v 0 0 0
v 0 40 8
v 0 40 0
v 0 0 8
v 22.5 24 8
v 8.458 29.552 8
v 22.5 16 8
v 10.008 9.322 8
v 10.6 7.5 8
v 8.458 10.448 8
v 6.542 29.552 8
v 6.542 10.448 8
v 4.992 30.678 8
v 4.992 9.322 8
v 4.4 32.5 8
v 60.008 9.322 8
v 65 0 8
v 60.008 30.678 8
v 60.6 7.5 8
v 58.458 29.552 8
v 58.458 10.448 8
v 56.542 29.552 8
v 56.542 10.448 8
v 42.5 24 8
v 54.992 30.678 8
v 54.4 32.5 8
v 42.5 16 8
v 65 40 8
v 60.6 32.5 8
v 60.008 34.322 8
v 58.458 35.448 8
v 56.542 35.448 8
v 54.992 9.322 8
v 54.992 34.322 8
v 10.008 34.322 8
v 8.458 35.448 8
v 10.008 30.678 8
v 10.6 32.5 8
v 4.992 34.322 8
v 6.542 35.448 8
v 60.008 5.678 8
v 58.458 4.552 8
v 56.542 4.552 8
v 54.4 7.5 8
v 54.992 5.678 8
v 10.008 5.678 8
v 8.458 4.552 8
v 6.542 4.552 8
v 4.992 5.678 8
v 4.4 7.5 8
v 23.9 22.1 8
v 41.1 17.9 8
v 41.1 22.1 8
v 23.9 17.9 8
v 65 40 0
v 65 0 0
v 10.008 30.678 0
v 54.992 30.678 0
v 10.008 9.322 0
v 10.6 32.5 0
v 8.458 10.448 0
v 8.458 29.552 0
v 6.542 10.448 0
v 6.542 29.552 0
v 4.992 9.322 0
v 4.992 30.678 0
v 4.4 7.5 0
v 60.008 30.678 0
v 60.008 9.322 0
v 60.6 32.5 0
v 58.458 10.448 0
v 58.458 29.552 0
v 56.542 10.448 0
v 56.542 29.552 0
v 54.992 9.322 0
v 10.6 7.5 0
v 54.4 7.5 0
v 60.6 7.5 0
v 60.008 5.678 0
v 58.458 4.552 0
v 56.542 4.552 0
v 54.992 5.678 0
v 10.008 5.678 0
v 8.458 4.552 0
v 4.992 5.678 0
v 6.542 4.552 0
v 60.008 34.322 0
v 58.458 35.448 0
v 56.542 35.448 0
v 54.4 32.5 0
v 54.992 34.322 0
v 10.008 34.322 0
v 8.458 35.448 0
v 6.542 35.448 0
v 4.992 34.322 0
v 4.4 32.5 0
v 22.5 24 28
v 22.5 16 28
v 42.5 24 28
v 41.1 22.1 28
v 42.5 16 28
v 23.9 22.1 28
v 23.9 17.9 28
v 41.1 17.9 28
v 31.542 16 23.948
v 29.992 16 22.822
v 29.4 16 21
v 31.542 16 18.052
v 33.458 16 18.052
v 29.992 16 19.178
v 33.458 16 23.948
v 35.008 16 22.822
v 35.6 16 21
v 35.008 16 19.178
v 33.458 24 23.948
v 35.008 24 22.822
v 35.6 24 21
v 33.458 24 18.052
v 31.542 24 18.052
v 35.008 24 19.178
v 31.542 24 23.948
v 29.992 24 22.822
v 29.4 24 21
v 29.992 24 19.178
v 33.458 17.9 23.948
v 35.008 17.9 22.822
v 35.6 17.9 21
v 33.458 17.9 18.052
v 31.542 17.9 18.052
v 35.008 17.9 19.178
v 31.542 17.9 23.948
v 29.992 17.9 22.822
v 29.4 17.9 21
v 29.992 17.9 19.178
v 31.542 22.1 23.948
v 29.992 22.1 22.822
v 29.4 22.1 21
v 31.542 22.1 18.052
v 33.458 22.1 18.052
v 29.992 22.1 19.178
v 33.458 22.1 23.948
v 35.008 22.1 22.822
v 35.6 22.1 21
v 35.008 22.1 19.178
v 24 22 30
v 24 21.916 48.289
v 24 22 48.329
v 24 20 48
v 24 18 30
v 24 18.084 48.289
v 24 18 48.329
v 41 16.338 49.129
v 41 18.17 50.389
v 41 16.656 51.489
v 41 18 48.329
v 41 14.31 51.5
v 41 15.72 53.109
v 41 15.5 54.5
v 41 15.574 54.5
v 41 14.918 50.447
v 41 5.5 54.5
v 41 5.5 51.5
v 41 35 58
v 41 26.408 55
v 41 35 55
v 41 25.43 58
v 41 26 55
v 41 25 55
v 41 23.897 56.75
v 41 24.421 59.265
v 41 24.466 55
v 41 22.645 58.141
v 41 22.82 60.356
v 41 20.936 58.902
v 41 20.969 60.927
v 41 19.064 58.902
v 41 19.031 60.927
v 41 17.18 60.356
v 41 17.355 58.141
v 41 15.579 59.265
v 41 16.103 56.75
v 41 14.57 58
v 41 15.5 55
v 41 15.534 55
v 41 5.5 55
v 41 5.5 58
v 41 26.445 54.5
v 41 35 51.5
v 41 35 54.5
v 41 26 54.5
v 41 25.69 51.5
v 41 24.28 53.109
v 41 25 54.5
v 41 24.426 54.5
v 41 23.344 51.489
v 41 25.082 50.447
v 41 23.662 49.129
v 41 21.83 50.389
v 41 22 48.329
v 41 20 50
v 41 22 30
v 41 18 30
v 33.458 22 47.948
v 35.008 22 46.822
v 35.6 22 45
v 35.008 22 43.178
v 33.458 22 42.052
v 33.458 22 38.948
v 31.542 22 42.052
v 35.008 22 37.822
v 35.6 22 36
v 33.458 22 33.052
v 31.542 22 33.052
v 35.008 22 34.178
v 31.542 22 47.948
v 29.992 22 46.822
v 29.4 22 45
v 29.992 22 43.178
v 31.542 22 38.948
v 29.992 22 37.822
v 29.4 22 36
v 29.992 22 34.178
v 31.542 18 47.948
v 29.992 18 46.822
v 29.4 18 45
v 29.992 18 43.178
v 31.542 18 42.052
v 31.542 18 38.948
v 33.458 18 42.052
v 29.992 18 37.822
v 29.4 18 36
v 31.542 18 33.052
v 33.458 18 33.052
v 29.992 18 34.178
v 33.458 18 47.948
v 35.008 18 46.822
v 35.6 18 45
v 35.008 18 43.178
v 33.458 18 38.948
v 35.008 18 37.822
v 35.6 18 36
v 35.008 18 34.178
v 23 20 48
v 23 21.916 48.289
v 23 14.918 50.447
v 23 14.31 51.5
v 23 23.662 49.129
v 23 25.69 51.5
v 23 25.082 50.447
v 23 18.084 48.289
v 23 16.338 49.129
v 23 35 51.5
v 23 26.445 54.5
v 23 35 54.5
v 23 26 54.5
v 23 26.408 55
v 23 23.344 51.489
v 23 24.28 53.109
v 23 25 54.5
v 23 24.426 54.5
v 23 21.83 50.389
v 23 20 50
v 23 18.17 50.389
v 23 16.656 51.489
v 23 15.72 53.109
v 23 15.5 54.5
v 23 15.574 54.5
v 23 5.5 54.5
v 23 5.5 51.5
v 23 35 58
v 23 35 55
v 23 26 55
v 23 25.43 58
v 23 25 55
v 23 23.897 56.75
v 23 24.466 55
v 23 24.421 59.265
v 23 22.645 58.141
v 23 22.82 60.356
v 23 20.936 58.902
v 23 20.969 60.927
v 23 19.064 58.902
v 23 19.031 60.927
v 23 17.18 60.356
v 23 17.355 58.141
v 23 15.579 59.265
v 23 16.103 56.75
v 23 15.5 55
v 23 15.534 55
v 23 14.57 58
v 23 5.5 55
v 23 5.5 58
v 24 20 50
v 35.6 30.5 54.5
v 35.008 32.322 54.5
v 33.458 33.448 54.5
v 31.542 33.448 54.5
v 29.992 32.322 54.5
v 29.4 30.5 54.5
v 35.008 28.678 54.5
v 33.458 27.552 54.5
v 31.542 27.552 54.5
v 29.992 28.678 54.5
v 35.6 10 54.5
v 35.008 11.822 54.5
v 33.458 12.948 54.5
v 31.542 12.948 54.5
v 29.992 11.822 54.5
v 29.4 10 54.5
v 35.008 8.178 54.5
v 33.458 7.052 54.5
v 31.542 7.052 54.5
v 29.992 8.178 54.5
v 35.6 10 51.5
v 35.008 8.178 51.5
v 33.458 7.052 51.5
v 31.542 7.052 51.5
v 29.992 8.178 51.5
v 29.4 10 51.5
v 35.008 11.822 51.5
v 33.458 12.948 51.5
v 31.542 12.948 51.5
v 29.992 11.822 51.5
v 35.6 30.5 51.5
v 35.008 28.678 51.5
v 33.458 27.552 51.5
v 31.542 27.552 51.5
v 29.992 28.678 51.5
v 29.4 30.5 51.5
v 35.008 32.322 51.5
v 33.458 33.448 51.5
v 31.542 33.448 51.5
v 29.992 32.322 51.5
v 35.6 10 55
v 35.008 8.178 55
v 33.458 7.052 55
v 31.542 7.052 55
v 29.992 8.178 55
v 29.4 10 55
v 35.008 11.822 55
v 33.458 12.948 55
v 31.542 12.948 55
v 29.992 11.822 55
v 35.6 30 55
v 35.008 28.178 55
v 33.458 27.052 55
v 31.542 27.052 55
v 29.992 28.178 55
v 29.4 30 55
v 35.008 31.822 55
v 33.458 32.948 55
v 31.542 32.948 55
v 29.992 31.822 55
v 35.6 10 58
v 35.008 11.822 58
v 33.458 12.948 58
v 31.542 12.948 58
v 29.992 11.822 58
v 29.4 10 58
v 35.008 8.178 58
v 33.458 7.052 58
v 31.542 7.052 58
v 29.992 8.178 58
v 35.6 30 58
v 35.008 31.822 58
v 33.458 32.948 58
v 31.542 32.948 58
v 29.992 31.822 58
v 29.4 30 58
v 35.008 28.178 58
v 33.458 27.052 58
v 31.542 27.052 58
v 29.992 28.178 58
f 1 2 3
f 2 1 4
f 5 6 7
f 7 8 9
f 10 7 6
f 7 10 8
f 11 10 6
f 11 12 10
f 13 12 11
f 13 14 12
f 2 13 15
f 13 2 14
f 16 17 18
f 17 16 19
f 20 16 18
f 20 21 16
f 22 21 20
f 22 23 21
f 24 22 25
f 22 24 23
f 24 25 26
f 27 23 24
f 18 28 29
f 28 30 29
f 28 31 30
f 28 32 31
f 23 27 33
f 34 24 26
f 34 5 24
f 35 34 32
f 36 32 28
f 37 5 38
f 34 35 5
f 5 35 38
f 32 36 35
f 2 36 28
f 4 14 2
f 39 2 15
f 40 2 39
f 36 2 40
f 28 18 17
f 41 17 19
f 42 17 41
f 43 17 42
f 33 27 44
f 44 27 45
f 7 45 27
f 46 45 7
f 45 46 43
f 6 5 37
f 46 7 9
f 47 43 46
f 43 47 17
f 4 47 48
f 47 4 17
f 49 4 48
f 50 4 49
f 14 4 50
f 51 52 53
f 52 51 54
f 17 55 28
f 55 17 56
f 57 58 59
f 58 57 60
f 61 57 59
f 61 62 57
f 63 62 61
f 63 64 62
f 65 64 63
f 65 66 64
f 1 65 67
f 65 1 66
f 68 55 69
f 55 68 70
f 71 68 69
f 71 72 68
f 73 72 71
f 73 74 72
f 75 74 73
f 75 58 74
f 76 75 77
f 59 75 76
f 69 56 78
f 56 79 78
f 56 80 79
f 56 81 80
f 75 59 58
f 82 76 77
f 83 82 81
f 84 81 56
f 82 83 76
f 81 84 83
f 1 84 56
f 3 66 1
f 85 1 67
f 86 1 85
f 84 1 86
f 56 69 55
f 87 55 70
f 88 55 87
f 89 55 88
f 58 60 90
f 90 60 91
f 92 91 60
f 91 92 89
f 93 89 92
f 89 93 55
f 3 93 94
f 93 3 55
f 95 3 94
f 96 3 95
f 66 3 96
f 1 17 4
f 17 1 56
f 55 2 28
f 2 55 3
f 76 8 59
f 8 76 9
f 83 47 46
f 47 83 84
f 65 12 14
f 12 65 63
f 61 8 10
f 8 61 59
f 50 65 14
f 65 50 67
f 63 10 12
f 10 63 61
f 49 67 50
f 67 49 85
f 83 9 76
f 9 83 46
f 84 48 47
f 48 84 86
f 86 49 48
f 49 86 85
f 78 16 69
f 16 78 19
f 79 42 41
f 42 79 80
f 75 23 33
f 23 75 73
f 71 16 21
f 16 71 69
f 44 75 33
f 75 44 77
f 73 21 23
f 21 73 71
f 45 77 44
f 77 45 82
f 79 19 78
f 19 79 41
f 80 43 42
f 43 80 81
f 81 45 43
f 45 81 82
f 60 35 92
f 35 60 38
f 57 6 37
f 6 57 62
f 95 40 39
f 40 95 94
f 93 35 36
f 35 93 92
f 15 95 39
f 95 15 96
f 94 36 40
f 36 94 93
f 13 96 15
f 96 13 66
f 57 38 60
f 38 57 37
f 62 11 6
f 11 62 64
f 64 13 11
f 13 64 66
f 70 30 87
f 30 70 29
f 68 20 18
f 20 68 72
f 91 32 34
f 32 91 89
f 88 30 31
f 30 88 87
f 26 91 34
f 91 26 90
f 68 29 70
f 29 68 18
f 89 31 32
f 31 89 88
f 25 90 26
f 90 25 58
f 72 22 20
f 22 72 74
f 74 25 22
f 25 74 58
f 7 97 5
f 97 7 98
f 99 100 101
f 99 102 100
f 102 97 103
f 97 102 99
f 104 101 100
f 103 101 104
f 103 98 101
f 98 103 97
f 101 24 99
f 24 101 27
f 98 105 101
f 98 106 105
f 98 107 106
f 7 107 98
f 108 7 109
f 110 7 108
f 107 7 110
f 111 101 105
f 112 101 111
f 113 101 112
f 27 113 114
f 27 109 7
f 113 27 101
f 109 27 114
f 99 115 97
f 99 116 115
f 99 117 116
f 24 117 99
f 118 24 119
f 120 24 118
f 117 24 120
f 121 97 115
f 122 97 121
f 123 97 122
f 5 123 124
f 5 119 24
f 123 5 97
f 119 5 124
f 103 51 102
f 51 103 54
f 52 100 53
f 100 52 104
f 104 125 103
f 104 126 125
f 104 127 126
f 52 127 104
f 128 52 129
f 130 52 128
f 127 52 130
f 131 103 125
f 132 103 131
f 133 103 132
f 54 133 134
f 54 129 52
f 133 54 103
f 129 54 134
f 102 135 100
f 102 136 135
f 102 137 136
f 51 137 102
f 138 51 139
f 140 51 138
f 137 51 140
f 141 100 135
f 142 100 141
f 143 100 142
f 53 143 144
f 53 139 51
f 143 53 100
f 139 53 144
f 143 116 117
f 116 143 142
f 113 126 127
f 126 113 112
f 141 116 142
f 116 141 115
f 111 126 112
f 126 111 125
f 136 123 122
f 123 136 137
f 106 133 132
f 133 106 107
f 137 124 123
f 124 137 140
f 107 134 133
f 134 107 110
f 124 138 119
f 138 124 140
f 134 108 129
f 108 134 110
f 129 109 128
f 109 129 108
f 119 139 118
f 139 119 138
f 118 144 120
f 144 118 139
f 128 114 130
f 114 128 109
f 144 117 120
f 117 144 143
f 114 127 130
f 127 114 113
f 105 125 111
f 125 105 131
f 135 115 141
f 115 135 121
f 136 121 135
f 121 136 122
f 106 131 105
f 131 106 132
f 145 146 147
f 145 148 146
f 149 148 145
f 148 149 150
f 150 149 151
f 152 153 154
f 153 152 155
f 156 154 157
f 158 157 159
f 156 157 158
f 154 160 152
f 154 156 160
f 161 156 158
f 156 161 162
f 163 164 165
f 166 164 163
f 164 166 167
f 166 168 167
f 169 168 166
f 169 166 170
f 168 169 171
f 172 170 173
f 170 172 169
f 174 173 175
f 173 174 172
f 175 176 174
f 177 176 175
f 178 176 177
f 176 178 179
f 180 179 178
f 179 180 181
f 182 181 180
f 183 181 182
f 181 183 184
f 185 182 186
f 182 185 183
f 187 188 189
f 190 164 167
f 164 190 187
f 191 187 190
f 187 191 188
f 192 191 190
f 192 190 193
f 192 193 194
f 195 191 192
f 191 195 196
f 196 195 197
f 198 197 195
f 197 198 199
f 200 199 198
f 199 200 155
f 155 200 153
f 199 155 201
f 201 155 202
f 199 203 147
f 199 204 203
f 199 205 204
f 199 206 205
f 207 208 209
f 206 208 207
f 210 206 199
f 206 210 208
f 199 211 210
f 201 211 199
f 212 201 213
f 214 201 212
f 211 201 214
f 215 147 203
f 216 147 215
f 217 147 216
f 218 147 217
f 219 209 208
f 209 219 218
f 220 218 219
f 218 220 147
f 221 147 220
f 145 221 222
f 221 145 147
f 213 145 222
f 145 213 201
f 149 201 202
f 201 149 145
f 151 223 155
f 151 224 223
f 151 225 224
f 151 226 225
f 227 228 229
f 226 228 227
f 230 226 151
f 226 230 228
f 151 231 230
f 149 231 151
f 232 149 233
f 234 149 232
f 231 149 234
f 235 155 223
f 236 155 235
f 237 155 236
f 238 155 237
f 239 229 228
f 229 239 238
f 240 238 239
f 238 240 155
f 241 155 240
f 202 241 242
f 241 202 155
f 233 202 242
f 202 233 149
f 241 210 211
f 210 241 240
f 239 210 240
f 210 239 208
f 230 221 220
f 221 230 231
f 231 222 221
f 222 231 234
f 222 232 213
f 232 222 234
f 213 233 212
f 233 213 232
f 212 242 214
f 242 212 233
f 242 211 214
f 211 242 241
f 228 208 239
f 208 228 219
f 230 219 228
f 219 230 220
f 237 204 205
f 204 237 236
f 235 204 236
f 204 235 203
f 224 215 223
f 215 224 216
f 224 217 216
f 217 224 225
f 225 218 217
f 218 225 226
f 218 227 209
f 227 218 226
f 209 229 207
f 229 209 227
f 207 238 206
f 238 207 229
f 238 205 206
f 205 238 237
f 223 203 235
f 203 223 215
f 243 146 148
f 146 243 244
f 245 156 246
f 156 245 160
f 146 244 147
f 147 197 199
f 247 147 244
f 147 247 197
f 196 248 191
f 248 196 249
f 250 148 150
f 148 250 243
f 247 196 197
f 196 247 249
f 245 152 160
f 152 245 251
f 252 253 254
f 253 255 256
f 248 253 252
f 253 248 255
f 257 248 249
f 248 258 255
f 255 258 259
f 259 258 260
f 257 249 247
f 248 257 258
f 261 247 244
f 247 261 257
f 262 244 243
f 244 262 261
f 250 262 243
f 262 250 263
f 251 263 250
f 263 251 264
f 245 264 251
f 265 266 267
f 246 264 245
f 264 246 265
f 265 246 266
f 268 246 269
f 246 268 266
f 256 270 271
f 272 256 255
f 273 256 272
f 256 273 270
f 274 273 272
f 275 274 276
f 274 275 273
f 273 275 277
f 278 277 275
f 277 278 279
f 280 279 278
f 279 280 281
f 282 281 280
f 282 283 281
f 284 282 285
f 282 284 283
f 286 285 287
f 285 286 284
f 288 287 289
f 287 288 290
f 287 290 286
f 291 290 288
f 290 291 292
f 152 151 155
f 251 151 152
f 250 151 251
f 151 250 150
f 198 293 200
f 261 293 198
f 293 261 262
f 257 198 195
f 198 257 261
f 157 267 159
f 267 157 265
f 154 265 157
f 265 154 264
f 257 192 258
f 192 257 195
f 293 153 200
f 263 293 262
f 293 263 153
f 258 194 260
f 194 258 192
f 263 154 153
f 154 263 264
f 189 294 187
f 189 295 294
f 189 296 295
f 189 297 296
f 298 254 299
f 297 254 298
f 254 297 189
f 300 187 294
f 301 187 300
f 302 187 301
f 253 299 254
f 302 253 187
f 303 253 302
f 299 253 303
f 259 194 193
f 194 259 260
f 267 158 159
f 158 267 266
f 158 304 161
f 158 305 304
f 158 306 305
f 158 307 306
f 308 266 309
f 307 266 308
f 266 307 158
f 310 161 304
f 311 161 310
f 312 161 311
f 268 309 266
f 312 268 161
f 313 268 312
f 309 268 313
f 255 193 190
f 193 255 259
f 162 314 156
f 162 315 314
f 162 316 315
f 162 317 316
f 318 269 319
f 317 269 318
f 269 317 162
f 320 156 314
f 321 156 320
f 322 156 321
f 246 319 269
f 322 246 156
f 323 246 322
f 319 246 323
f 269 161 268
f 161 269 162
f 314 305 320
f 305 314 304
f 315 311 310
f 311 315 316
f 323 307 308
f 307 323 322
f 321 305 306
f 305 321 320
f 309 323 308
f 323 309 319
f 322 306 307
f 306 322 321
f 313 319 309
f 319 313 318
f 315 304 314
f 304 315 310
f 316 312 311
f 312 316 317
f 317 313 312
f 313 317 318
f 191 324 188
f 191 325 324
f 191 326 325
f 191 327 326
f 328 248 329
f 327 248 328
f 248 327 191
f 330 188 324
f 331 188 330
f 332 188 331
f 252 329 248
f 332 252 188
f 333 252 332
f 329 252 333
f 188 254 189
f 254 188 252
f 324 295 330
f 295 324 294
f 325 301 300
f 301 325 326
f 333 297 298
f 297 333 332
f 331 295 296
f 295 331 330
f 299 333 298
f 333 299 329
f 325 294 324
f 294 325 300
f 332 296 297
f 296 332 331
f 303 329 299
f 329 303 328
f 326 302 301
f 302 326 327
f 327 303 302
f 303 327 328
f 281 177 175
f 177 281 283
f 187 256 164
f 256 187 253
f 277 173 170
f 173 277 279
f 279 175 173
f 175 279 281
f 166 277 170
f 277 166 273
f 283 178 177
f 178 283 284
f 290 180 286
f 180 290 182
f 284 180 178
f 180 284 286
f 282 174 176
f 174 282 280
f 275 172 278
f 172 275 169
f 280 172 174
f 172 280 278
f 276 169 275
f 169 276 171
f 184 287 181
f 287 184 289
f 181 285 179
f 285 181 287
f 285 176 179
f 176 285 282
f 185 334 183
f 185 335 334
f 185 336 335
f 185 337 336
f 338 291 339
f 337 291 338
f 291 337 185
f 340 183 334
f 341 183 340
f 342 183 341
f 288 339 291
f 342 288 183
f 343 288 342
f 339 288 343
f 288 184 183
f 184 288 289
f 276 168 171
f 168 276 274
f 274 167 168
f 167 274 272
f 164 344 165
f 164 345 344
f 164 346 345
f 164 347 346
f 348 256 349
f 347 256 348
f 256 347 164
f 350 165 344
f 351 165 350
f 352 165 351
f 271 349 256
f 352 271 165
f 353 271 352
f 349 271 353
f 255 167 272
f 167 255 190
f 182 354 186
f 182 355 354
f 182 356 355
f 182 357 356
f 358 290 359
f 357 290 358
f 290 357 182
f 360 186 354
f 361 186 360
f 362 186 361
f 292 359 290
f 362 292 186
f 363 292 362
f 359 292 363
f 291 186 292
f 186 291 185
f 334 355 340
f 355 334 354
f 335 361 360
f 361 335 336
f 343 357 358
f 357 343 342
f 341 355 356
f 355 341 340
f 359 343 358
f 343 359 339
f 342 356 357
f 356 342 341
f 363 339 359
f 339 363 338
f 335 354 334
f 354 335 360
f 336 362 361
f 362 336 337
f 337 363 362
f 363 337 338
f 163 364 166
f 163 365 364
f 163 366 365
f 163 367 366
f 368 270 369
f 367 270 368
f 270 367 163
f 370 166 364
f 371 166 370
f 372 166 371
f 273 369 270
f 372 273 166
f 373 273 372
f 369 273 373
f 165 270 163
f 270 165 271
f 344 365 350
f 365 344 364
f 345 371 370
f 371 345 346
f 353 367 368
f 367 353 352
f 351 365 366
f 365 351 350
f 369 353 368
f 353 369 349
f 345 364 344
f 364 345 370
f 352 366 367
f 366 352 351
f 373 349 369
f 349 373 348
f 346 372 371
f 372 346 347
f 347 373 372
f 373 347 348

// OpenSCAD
//base
difference(){
cube([65,40,8]);
#translate([7.5,7.5,0])cylinder(h=8, r=3.1);
#translate([57.5,7.5,0])cylinder(h=8, r=3.1);
#translate([7.5,32.5,0])cylinder(h=8, r=3.1);
#translate([57.5,32.5,0])cylinder(h=8, r=3.1);
}

//apoio inferior com aberturas
difference(){translate([32.5,20,18])
    // cubo principal
        cube([20,8,20], center=true);
    // abertura interior
    #translate([32.5,20,18])
        cube([17.2,4.2,20], center=true);
    // abertura para o prego
   #translate([32.5,24,21])rotate(a=[90,0,0])
        cylinder(h=8, r=3.1 );}
//
        
//apoio superior
   difference(){translate([32.5,20,40])
    // cubo principal
        cube([17,4,20], center=true);
    // aberturas para os pregos
 #translate([32.5,22,36])rotate(a=[90,0,0])
        cylinder(h=4, r=3.1 );
 #translate([32.5,22,45])rotate(a=[90,0,0])
        cylinder(h=4, r=3.1 );}
//
        
// Concha de suporte inferior
difference(){translate([23,20,54.5])rotate(a=[0,90,0])
        cylinder(h=18, r=6.5 );
    
// Abertura interior    
#translate([23,20,54.5])rotate(a=[0,90,0])
        cylinder(h=18, r=4.5 );
    
// corte de separação das conchas
#translate([23,13.5,54.5]) cube([18,13,6.5]);
}
//

// Retângulo ligado a concha inferior
{
// lado perto da origem
difference(){translate([23,5.5,51.5]) cube([18,10,3]);
    
    // abertura para o prego
#translate([32.5,10,51.5]) cylinder(h=3, r=3.1 );
}
//

//lado longe da origem
difference(){translate([23,25,51.5]) cube([18,10,3]);
    
    // abertura para o prego
#translate([32.5,30.5,51.5]) cylinder(h=3, r=3.1 );
}
}
//



//Concha de suporte superior
difference(){translate([23,20,54.5])rotate(a=[0,90,0])
        cylinder(h=18, r=6.5 );
    
// Abertura interior    
#translate([23,20,54.5])rotate(a=[0,90,0])
        cylinder(h=18, r=4.5 );
    
// corte de separação das conchas
#translate([23,13,48.5]) cube([18,13,6.5]);
}
//

// Retângulo ligado a concha superior
{
// lado perto da origem
difference(){translate([23,5.5,55]) cube([18,10,3]);
    
    // abertura para o prego
#translate([32.5,10,55]) cylinder(h=3, r=3.1 );
}
//

//lado longe da origem
difference(){translate([23,25,55]) cube([18,10,3]);
    
    // abertura para o prego
#translate([32.5,30,55]) cylinder(h=3, r=3.1 );
}
}
//
